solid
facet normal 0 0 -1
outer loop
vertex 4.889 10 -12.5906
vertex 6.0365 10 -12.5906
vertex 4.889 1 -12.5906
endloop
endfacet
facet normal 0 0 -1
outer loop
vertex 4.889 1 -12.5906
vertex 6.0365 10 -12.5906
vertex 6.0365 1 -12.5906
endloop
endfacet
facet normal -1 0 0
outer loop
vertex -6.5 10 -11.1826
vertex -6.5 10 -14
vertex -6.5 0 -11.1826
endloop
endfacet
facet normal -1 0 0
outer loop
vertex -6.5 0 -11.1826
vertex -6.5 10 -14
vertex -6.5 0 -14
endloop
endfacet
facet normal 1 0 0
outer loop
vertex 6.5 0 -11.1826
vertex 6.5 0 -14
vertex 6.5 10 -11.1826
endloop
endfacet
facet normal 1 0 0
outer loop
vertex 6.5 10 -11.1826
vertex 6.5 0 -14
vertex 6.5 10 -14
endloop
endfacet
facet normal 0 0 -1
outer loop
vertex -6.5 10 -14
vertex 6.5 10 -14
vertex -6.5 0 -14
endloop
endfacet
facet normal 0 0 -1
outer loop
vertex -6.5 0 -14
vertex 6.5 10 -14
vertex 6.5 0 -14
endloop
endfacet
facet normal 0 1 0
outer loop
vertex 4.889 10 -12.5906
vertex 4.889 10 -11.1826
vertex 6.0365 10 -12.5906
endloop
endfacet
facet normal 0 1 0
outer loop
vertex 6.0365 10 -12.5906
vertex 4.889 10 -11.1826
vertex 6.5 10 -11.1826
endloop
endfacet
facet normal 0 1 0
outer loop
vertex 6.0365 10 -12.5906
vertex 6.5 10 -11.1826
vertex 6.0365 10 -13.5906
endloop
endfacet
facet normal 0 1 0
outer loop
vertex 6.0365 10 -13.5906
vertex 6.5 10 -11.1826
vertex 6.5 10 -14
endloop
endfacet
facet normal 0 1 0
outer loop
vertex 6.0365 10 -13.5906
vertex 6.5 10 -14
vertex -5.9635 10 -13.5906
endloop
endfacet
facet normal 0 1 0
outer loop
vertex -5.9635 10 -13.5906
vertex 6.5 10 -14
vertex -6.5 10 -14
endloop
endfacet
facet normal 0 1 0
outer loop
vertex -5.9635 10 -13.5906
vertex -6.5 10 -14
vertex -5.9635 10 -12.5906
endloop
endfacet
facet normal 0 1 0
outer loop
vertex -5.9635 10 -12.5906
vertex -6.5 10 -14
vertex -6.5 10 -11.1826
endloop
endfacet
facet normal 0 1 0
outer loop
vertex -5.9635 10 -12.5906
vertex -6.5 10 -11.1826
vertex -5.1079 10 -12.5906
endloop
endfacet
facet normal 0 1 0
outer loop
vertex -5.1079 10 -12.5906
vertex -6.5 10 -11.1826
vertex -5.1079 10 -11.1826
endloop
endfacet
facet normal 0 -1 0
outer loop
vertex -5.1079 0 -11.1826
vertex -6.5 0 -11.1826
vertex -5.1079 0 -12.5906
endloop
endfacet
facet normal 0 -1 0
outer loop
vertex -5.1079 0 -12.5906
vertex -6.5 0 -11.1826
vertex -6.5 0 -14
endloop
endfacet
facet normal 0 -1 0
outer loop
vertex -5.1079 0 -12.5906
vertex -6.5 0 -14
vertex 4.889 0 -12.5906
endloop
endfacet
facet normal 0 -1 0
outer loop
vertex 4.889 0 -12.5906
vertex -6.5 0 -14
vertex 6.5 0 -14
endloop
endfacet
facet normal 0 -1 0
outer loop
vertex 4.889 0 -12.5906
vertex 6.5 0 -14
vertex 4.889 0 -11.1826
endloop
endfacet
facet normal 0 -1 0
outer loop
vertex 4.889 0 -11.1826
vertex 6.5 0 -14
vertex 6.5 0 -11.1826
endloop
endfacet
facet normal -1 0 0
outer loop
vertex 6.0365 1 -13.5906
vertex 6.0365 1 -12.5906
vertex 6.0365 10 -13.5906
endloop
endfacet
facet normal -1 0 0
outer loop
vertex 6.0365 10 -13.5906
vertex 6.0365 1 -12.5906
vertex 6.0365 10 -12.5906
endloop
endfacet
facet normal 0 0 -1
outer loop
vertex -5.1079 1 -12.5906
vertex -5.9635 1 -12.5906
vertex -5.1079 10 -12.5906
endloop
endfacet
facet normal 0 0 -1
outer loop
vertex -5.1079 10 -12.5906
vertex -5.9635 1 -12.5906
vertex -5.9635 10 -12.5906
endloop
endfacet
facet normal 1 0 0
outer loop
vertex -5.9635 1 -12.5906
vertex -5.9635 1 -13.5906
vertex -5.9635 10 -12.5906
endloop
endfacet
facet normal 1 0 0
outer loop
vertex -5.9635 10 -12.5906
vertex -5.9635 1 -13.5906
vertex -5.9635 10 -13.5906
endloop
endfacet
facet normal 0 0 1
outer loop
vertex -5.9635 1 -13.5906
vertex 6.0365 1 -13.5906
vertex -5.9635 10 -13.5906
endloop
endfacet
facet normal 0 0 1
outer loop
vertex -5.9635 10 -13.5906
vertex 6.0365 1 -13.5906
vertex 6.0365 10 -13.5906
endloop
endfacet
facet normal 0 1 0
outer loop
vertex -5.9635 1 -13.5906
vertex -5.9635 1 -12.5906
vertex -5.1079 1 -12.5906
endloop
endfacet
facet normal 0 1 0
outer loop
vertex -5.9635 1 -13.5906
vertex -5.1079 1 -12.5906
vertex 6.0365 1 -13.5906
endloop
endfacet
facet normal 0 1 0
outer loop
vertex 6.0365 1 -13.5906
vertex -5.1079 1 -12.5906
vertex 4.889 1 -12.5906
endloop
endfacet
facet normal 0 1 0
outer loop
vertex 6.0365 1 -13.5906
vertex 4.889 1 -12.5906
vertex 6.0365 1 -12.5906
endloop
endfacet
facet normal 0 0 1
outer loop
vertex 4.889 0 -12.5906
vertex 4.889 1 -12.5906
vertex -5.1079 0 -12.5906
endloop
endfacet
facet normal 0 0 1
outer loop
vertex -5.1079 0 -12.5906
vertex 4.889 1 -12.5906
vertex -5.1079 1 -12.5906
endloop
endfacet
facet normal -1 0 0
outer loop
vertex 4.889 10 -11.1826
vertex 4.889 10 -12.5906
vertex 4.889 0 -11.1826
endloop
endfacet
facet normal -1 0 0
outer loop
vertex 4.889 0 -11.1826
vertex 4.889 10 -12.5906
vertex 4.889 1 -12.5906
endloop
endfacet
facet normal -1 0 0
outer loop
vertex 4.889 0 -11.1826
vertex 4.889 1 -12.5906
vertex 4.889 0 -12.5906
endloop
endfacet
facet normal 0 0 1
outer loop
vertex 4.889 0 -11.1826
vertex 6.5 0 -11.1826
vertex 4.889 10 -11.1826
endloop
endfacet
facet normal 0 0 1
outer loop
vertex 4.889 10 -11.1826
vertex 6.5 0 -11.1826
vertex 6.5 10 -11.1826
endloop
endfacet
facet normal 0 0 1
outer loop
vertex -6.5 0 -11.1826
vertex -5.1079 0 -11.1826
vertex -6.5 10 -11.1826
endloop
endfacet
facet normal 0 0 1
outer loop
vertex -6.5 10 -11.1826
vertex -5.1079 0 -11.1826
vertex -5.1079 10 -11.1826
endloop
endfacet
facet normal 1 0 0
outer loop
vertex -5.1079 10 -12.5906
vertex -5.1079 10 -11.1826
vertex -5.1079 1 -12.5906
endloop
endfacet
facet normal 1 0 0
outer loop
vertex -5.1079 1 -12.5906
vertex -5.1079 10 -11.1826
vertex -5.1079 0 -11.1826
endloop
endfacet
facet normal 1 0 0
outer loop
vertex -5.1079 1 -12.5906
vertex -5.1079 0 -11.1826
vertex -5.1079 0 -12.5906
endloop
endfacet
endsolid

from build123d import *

# Parameters (mm, degrees)
SKETCH1_W           = 13
SKETCH1_H           = 28
BOSS_EXTRUDE1_DEPTH = 10
CUT_EXTRUDE1_DEPTH  = 9
CUT_EXTRUDE3_DEPTH  = 19.391574158


with BuildPart() as part:
    # Sketch1 → Boss-Extrude1 (new body)
    with BuildSketch(Plane(origin=(0, 0, 0), x_dir=(1, 0, 0), z_dir=(0, 1, 0))):
        Rectangle(SKETCH1_W, SKETCH1_H)
    extrude(amount=BOSS_EXTRUDE1_DEPTH)

    # Sketch2 → Cut-Extrude1 (cut)
    with BuildSketch(Plane(origin=(0, 10, 0), x_dir=(1, 0, 0), z_dir=(0, 1, 0))):
        Polygon((0, 13.590584793), (-5.963515209, 13.590584793), (-5.963515209, 12.590584793), (6.036484791, 12.590584793), (6.036484791, 13.590584793), align=None)
    extrude(amount=-CUT_EXTRUDE1_DEPTH, mode=Mode.SUBTRACT)

    # Sketch3 → Cut-Extrude3 (cut, through all)
    with BuildSketch(Plane(origin=(0, 10, 0), x_dir=(1, 0, 0), z_dir=(0, 1, 0))):
        Polygon((-5.107870795, 12.590584793), (-5.107870795, 11.182588561), (-6.5, 11.182588561), (-6.5, -14), (6.5, -14), (6.5, 11.182588561), (4.888962046, 11.182588561), (4.888962046, 12.590584793), align=None)
    extrude(amount=-CUT_EXTRUDE3_DEPTH, mode=Mode.SUBTRACT)


solid = part.part
